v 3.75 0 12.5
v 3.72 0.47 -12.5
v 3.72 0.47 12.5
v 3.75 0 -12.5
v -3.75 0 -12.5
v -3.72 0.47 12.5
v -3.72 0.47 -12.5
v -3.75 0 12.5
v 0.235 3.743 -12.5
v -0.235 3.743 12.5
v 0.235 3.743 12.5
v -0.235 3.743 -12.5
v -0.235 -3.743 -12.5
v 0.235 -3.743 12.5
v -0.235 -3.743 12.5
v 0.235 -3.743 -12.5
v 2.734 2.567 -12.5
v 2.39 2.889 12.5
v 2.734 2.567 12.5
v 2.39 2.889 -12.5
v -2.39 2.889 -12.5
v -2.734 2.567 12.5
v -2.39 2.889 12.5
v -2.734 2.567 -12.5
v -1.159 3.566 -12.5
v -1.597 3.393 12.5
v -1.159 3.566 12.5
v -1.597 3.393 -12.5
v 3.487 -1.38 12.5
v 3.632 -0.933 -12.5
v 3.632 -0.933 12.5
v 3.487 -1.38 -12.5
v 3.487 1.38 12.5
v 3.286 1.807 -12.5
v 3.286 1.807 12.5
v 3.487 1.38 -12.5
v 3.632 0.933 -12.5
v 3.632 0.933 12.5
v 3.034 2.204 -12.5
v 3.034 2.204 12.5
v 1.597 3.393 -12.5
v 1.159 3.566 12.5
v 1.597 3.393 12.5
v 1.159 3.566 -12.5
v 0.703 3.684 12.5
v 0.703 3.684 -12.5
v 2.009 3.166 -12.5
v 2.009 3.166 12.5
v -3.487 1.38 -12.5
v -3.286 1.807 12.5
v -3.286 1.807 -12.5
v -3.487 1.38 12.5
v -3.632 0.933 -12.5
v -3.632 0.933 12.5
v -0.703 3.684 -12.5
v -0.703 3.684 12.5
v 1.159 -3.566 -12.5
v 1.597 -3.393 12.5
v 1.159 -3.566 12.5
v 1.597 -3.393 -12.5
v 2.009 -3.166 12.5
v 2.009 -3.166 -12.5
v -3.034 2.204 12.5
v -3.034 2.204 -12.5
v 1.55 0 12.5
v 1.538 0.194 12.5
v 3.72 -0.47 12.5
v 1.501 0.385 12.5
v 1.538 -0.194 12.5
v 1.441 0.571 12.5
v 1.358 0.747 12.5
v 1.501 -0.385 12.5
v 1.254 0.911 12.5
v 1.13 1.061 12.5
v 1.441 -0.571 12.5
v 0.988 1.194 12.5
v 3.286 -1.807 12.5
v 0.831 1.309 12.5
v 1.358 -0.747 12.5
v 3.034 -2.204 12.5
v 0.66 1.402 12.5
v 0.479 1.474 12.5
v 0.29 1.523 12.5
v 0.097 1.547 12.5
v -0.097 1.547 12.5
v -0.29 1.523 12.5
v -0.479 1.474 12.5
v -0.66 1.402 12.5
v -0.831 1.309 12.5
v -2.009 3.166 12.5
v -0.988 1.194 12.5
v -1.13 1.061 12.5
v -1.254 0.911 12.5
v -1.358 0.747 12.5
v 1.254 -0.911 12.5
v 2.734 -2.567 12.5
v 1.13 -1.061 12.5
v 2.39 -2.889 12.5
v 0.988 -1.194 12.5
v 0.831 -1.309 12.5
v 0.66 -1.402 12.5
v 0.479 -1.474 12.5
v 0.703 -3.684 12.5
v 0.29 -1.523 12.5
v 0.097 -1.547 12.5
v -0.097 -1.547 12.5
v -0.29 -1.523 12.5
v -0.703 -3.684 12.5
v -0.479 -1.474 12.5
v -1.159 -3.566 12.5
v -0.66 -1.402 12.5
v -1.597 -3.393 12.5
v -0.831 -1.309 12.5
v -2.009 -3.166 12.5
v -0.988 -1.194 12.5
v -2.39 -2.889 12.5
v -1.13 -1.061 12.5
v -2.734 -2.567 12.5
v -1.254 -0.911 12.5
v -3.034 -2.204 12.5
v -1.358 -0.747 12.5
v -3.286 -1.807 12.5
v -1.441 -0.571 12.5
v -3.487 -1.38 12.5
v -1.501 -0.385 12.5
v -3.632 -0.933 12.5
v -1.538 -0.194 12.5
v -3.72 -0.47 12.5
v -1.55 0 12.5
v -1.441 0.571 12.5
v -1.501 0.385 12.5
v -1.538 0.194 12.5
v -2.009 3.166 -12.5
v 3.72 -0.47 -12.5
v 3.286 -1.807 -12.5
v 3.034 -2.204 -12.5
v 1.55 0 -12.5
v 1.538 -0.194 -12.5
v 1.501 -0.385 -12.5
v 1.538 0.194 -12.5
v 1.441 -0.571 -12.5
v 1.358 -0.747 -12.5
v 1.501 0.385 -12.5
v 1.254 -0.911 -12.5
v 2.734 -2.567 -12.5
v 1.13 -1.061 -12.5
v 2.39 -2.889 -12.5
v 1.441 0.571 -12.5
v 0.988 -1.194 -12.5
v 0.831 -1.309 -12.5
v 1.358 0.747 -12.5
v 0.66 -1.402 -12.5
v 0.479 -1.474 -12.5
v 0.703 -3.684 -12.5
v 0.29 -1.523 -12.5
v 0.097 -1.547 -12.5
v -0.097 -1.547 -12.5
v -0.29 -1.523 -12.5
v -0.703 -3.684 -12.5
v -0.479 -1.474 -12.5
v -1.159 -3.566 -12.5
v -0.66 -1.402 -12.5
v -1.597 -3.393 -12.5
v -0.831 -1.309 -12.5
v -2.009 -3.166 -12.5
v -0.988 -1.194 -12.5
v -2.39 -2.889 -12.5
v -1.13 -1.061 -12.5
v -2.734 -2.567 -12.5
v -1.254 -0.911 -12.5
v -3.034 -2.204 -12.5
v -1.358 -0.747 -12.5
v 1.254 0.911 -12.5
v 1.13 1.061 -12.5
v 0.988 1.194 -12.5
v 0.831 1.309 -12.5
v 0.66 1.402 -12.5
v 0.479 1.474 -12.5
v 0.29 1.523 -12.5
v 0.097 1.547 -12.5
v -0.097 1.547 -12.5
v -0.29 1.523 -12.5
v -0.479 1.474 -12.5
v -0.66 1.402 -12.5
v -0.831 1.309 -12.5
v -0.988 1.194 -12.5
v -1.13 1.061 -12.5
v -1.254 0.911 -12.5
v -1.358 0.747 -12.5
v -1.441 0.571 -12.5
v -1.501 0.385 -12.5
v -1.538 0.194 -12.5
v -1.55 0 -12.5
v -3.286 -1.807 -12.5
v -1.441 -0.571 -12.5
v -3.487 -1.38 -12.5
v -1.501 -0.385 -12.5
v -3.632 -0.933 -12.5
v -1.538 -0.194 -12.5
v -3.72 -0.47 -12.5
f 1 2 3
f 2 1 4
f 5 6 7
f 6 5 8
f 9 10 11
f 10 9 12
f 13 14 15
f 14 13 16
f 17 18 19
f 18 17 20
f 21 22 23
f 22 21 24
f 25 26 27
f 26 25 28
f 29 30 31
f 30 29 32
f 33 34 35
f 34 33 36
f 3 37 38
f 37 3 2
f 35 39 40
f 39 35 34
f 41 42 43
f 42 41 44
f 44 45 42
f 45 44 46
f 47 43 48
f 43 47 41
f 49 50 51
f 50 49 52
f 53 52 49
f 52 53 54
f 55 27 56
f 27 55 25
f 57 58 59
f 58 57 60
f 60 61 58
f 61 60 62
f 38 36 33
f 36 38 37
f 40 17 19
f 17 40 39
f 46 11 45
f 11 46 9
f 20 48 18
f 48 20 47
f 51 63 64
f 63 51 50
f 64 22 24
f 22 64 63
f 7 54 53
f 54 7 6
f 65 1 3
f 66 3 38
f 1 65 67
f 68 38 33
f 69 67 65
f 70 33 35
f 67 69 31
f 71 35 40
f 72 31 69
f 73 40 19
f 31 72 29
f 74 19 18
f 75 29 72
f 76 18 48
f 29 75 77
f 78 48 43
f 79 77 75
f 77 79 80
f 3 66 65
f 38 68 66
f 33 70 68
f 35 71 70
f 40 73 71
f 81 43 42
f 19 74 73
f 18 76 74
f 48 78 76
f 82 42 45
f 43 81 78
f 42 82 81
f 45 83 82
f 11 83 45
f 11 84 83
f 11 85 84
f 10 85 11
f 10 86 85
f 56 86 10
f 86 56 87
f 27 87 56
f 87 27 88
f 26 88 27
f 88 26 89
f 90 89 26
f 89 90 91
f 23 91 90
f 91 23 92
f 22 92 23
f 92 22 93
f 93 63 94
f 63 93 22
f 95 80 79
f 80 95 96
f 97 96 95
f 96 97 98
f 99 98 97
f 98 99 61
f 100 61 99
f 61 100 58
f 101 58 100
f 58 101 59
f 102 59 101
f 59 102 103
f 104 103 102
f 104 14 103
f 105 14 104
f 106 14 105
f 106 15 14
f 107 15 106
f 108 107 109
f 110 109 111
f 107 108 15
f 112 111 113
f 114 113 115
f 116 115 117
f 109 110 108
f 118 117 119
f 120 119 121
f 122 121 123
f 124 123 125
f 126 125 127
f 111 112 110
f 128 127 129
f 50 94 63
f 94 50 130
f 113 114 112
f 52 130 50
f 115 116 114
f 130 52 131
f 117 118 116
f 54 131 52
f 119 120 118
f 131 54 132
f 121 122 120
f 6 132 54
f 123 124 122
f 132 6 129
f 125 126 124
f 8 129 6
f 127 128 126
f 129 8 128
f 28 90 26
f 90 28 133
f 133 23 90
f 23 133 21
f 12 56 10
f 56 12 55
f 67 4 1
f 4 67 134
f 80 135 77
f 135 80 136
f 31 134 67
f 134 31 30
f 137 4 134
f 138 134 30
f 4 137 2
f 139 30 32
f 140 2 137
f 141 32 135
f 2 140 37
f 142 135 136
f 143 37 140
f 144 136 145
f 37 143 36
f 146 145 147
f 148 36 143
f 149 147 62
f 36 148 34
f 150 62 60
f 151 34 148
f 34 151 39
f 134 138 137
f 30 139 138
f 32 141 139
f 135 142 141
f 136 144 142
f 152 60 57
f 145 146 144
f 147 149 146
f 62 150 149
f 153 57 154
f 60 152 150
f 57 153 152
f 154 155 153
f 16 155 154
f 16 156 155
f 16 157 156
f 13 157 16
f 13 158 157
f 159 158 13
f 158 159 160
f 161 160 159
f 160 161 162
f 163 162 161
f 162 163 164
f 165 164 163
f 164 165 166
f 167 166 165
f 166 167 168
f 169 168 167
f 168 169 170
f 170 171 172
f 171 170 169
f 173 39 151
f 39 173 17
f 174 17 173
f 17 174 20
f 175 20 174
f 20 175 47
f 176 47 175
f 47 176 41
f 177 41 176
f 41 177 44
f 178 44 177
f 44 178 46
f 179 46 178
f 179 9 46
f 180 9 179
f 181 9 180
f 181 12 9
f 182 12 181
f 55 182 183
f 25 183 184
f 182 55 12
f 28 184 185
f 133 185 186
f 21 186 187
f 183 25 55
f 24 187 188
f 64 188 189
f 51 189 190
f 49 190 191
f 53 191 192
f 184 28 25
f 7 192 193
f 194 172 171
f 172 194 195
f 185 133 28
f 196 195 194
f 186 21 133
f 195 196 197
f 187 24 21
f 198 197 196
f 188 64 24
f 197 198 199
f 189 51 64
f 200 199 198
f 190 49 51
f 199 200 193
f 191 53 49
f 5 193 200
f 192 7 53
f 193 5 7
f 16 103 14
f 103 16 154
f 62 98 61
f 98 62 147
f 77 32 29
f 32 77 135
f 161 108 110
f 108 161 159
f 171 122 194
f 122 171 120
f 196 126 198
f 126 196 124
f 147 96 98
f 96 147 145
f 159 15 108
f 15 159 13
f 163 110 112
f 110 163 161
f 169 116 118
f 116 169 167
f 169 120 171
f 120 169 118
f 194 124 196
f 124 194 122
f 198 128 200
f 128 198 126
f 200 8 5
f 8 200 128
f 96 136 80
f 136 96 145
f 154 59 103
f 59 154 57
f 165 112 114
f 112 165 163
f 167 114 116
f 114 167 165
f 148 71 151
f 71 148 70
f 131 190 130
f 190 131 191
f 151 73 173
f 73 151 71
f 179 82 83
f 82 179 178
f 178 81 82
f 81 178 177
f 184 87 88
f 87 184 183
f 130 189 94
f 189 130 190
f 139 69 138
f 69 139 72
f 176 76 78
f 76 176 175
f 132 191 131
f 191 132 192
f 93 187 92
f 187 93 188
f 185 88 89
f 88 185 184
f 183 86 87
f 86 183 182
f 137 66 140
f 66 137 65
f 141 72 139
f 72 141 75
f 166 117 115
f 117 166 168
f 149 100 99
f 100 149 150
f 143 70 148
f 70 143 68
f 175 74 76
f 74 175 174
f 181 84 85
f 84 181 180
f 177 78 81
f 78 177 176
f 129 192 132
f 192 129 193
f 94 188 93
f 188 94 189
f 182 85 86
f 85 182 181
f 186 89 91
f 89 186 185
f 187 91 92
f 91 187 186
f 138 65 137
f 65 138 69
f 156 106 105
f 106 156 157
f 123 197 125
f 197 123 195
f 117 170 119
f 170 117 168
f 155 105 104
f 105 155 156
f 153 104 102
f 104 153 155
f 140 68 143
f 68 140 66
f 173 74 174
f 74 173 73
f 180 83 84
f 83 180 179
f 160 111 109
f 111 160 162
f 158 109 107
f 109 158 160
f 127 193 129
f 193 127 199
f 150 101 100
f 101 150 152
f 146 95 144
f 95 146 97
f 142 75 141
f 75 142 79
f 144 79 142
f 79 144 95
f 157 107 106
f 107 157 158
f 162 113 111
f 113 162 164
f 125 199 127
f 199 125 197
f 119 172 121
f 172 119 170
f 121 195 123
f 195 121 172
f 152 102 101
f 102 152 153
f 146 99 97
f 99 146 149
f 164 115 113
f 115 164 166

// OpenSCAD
$fn = 50;


difference() {
	union() {
		translate(v = [0, 0, -12.5000000000]) {
			cylinder(h = 25, r = 3.7500000000);
		}
	}
	union() {
		translate(v = [0, 0, -100.0000000000]) {
			cylinder(h = 200, r = 1.5500000000);
		}
	}
}
